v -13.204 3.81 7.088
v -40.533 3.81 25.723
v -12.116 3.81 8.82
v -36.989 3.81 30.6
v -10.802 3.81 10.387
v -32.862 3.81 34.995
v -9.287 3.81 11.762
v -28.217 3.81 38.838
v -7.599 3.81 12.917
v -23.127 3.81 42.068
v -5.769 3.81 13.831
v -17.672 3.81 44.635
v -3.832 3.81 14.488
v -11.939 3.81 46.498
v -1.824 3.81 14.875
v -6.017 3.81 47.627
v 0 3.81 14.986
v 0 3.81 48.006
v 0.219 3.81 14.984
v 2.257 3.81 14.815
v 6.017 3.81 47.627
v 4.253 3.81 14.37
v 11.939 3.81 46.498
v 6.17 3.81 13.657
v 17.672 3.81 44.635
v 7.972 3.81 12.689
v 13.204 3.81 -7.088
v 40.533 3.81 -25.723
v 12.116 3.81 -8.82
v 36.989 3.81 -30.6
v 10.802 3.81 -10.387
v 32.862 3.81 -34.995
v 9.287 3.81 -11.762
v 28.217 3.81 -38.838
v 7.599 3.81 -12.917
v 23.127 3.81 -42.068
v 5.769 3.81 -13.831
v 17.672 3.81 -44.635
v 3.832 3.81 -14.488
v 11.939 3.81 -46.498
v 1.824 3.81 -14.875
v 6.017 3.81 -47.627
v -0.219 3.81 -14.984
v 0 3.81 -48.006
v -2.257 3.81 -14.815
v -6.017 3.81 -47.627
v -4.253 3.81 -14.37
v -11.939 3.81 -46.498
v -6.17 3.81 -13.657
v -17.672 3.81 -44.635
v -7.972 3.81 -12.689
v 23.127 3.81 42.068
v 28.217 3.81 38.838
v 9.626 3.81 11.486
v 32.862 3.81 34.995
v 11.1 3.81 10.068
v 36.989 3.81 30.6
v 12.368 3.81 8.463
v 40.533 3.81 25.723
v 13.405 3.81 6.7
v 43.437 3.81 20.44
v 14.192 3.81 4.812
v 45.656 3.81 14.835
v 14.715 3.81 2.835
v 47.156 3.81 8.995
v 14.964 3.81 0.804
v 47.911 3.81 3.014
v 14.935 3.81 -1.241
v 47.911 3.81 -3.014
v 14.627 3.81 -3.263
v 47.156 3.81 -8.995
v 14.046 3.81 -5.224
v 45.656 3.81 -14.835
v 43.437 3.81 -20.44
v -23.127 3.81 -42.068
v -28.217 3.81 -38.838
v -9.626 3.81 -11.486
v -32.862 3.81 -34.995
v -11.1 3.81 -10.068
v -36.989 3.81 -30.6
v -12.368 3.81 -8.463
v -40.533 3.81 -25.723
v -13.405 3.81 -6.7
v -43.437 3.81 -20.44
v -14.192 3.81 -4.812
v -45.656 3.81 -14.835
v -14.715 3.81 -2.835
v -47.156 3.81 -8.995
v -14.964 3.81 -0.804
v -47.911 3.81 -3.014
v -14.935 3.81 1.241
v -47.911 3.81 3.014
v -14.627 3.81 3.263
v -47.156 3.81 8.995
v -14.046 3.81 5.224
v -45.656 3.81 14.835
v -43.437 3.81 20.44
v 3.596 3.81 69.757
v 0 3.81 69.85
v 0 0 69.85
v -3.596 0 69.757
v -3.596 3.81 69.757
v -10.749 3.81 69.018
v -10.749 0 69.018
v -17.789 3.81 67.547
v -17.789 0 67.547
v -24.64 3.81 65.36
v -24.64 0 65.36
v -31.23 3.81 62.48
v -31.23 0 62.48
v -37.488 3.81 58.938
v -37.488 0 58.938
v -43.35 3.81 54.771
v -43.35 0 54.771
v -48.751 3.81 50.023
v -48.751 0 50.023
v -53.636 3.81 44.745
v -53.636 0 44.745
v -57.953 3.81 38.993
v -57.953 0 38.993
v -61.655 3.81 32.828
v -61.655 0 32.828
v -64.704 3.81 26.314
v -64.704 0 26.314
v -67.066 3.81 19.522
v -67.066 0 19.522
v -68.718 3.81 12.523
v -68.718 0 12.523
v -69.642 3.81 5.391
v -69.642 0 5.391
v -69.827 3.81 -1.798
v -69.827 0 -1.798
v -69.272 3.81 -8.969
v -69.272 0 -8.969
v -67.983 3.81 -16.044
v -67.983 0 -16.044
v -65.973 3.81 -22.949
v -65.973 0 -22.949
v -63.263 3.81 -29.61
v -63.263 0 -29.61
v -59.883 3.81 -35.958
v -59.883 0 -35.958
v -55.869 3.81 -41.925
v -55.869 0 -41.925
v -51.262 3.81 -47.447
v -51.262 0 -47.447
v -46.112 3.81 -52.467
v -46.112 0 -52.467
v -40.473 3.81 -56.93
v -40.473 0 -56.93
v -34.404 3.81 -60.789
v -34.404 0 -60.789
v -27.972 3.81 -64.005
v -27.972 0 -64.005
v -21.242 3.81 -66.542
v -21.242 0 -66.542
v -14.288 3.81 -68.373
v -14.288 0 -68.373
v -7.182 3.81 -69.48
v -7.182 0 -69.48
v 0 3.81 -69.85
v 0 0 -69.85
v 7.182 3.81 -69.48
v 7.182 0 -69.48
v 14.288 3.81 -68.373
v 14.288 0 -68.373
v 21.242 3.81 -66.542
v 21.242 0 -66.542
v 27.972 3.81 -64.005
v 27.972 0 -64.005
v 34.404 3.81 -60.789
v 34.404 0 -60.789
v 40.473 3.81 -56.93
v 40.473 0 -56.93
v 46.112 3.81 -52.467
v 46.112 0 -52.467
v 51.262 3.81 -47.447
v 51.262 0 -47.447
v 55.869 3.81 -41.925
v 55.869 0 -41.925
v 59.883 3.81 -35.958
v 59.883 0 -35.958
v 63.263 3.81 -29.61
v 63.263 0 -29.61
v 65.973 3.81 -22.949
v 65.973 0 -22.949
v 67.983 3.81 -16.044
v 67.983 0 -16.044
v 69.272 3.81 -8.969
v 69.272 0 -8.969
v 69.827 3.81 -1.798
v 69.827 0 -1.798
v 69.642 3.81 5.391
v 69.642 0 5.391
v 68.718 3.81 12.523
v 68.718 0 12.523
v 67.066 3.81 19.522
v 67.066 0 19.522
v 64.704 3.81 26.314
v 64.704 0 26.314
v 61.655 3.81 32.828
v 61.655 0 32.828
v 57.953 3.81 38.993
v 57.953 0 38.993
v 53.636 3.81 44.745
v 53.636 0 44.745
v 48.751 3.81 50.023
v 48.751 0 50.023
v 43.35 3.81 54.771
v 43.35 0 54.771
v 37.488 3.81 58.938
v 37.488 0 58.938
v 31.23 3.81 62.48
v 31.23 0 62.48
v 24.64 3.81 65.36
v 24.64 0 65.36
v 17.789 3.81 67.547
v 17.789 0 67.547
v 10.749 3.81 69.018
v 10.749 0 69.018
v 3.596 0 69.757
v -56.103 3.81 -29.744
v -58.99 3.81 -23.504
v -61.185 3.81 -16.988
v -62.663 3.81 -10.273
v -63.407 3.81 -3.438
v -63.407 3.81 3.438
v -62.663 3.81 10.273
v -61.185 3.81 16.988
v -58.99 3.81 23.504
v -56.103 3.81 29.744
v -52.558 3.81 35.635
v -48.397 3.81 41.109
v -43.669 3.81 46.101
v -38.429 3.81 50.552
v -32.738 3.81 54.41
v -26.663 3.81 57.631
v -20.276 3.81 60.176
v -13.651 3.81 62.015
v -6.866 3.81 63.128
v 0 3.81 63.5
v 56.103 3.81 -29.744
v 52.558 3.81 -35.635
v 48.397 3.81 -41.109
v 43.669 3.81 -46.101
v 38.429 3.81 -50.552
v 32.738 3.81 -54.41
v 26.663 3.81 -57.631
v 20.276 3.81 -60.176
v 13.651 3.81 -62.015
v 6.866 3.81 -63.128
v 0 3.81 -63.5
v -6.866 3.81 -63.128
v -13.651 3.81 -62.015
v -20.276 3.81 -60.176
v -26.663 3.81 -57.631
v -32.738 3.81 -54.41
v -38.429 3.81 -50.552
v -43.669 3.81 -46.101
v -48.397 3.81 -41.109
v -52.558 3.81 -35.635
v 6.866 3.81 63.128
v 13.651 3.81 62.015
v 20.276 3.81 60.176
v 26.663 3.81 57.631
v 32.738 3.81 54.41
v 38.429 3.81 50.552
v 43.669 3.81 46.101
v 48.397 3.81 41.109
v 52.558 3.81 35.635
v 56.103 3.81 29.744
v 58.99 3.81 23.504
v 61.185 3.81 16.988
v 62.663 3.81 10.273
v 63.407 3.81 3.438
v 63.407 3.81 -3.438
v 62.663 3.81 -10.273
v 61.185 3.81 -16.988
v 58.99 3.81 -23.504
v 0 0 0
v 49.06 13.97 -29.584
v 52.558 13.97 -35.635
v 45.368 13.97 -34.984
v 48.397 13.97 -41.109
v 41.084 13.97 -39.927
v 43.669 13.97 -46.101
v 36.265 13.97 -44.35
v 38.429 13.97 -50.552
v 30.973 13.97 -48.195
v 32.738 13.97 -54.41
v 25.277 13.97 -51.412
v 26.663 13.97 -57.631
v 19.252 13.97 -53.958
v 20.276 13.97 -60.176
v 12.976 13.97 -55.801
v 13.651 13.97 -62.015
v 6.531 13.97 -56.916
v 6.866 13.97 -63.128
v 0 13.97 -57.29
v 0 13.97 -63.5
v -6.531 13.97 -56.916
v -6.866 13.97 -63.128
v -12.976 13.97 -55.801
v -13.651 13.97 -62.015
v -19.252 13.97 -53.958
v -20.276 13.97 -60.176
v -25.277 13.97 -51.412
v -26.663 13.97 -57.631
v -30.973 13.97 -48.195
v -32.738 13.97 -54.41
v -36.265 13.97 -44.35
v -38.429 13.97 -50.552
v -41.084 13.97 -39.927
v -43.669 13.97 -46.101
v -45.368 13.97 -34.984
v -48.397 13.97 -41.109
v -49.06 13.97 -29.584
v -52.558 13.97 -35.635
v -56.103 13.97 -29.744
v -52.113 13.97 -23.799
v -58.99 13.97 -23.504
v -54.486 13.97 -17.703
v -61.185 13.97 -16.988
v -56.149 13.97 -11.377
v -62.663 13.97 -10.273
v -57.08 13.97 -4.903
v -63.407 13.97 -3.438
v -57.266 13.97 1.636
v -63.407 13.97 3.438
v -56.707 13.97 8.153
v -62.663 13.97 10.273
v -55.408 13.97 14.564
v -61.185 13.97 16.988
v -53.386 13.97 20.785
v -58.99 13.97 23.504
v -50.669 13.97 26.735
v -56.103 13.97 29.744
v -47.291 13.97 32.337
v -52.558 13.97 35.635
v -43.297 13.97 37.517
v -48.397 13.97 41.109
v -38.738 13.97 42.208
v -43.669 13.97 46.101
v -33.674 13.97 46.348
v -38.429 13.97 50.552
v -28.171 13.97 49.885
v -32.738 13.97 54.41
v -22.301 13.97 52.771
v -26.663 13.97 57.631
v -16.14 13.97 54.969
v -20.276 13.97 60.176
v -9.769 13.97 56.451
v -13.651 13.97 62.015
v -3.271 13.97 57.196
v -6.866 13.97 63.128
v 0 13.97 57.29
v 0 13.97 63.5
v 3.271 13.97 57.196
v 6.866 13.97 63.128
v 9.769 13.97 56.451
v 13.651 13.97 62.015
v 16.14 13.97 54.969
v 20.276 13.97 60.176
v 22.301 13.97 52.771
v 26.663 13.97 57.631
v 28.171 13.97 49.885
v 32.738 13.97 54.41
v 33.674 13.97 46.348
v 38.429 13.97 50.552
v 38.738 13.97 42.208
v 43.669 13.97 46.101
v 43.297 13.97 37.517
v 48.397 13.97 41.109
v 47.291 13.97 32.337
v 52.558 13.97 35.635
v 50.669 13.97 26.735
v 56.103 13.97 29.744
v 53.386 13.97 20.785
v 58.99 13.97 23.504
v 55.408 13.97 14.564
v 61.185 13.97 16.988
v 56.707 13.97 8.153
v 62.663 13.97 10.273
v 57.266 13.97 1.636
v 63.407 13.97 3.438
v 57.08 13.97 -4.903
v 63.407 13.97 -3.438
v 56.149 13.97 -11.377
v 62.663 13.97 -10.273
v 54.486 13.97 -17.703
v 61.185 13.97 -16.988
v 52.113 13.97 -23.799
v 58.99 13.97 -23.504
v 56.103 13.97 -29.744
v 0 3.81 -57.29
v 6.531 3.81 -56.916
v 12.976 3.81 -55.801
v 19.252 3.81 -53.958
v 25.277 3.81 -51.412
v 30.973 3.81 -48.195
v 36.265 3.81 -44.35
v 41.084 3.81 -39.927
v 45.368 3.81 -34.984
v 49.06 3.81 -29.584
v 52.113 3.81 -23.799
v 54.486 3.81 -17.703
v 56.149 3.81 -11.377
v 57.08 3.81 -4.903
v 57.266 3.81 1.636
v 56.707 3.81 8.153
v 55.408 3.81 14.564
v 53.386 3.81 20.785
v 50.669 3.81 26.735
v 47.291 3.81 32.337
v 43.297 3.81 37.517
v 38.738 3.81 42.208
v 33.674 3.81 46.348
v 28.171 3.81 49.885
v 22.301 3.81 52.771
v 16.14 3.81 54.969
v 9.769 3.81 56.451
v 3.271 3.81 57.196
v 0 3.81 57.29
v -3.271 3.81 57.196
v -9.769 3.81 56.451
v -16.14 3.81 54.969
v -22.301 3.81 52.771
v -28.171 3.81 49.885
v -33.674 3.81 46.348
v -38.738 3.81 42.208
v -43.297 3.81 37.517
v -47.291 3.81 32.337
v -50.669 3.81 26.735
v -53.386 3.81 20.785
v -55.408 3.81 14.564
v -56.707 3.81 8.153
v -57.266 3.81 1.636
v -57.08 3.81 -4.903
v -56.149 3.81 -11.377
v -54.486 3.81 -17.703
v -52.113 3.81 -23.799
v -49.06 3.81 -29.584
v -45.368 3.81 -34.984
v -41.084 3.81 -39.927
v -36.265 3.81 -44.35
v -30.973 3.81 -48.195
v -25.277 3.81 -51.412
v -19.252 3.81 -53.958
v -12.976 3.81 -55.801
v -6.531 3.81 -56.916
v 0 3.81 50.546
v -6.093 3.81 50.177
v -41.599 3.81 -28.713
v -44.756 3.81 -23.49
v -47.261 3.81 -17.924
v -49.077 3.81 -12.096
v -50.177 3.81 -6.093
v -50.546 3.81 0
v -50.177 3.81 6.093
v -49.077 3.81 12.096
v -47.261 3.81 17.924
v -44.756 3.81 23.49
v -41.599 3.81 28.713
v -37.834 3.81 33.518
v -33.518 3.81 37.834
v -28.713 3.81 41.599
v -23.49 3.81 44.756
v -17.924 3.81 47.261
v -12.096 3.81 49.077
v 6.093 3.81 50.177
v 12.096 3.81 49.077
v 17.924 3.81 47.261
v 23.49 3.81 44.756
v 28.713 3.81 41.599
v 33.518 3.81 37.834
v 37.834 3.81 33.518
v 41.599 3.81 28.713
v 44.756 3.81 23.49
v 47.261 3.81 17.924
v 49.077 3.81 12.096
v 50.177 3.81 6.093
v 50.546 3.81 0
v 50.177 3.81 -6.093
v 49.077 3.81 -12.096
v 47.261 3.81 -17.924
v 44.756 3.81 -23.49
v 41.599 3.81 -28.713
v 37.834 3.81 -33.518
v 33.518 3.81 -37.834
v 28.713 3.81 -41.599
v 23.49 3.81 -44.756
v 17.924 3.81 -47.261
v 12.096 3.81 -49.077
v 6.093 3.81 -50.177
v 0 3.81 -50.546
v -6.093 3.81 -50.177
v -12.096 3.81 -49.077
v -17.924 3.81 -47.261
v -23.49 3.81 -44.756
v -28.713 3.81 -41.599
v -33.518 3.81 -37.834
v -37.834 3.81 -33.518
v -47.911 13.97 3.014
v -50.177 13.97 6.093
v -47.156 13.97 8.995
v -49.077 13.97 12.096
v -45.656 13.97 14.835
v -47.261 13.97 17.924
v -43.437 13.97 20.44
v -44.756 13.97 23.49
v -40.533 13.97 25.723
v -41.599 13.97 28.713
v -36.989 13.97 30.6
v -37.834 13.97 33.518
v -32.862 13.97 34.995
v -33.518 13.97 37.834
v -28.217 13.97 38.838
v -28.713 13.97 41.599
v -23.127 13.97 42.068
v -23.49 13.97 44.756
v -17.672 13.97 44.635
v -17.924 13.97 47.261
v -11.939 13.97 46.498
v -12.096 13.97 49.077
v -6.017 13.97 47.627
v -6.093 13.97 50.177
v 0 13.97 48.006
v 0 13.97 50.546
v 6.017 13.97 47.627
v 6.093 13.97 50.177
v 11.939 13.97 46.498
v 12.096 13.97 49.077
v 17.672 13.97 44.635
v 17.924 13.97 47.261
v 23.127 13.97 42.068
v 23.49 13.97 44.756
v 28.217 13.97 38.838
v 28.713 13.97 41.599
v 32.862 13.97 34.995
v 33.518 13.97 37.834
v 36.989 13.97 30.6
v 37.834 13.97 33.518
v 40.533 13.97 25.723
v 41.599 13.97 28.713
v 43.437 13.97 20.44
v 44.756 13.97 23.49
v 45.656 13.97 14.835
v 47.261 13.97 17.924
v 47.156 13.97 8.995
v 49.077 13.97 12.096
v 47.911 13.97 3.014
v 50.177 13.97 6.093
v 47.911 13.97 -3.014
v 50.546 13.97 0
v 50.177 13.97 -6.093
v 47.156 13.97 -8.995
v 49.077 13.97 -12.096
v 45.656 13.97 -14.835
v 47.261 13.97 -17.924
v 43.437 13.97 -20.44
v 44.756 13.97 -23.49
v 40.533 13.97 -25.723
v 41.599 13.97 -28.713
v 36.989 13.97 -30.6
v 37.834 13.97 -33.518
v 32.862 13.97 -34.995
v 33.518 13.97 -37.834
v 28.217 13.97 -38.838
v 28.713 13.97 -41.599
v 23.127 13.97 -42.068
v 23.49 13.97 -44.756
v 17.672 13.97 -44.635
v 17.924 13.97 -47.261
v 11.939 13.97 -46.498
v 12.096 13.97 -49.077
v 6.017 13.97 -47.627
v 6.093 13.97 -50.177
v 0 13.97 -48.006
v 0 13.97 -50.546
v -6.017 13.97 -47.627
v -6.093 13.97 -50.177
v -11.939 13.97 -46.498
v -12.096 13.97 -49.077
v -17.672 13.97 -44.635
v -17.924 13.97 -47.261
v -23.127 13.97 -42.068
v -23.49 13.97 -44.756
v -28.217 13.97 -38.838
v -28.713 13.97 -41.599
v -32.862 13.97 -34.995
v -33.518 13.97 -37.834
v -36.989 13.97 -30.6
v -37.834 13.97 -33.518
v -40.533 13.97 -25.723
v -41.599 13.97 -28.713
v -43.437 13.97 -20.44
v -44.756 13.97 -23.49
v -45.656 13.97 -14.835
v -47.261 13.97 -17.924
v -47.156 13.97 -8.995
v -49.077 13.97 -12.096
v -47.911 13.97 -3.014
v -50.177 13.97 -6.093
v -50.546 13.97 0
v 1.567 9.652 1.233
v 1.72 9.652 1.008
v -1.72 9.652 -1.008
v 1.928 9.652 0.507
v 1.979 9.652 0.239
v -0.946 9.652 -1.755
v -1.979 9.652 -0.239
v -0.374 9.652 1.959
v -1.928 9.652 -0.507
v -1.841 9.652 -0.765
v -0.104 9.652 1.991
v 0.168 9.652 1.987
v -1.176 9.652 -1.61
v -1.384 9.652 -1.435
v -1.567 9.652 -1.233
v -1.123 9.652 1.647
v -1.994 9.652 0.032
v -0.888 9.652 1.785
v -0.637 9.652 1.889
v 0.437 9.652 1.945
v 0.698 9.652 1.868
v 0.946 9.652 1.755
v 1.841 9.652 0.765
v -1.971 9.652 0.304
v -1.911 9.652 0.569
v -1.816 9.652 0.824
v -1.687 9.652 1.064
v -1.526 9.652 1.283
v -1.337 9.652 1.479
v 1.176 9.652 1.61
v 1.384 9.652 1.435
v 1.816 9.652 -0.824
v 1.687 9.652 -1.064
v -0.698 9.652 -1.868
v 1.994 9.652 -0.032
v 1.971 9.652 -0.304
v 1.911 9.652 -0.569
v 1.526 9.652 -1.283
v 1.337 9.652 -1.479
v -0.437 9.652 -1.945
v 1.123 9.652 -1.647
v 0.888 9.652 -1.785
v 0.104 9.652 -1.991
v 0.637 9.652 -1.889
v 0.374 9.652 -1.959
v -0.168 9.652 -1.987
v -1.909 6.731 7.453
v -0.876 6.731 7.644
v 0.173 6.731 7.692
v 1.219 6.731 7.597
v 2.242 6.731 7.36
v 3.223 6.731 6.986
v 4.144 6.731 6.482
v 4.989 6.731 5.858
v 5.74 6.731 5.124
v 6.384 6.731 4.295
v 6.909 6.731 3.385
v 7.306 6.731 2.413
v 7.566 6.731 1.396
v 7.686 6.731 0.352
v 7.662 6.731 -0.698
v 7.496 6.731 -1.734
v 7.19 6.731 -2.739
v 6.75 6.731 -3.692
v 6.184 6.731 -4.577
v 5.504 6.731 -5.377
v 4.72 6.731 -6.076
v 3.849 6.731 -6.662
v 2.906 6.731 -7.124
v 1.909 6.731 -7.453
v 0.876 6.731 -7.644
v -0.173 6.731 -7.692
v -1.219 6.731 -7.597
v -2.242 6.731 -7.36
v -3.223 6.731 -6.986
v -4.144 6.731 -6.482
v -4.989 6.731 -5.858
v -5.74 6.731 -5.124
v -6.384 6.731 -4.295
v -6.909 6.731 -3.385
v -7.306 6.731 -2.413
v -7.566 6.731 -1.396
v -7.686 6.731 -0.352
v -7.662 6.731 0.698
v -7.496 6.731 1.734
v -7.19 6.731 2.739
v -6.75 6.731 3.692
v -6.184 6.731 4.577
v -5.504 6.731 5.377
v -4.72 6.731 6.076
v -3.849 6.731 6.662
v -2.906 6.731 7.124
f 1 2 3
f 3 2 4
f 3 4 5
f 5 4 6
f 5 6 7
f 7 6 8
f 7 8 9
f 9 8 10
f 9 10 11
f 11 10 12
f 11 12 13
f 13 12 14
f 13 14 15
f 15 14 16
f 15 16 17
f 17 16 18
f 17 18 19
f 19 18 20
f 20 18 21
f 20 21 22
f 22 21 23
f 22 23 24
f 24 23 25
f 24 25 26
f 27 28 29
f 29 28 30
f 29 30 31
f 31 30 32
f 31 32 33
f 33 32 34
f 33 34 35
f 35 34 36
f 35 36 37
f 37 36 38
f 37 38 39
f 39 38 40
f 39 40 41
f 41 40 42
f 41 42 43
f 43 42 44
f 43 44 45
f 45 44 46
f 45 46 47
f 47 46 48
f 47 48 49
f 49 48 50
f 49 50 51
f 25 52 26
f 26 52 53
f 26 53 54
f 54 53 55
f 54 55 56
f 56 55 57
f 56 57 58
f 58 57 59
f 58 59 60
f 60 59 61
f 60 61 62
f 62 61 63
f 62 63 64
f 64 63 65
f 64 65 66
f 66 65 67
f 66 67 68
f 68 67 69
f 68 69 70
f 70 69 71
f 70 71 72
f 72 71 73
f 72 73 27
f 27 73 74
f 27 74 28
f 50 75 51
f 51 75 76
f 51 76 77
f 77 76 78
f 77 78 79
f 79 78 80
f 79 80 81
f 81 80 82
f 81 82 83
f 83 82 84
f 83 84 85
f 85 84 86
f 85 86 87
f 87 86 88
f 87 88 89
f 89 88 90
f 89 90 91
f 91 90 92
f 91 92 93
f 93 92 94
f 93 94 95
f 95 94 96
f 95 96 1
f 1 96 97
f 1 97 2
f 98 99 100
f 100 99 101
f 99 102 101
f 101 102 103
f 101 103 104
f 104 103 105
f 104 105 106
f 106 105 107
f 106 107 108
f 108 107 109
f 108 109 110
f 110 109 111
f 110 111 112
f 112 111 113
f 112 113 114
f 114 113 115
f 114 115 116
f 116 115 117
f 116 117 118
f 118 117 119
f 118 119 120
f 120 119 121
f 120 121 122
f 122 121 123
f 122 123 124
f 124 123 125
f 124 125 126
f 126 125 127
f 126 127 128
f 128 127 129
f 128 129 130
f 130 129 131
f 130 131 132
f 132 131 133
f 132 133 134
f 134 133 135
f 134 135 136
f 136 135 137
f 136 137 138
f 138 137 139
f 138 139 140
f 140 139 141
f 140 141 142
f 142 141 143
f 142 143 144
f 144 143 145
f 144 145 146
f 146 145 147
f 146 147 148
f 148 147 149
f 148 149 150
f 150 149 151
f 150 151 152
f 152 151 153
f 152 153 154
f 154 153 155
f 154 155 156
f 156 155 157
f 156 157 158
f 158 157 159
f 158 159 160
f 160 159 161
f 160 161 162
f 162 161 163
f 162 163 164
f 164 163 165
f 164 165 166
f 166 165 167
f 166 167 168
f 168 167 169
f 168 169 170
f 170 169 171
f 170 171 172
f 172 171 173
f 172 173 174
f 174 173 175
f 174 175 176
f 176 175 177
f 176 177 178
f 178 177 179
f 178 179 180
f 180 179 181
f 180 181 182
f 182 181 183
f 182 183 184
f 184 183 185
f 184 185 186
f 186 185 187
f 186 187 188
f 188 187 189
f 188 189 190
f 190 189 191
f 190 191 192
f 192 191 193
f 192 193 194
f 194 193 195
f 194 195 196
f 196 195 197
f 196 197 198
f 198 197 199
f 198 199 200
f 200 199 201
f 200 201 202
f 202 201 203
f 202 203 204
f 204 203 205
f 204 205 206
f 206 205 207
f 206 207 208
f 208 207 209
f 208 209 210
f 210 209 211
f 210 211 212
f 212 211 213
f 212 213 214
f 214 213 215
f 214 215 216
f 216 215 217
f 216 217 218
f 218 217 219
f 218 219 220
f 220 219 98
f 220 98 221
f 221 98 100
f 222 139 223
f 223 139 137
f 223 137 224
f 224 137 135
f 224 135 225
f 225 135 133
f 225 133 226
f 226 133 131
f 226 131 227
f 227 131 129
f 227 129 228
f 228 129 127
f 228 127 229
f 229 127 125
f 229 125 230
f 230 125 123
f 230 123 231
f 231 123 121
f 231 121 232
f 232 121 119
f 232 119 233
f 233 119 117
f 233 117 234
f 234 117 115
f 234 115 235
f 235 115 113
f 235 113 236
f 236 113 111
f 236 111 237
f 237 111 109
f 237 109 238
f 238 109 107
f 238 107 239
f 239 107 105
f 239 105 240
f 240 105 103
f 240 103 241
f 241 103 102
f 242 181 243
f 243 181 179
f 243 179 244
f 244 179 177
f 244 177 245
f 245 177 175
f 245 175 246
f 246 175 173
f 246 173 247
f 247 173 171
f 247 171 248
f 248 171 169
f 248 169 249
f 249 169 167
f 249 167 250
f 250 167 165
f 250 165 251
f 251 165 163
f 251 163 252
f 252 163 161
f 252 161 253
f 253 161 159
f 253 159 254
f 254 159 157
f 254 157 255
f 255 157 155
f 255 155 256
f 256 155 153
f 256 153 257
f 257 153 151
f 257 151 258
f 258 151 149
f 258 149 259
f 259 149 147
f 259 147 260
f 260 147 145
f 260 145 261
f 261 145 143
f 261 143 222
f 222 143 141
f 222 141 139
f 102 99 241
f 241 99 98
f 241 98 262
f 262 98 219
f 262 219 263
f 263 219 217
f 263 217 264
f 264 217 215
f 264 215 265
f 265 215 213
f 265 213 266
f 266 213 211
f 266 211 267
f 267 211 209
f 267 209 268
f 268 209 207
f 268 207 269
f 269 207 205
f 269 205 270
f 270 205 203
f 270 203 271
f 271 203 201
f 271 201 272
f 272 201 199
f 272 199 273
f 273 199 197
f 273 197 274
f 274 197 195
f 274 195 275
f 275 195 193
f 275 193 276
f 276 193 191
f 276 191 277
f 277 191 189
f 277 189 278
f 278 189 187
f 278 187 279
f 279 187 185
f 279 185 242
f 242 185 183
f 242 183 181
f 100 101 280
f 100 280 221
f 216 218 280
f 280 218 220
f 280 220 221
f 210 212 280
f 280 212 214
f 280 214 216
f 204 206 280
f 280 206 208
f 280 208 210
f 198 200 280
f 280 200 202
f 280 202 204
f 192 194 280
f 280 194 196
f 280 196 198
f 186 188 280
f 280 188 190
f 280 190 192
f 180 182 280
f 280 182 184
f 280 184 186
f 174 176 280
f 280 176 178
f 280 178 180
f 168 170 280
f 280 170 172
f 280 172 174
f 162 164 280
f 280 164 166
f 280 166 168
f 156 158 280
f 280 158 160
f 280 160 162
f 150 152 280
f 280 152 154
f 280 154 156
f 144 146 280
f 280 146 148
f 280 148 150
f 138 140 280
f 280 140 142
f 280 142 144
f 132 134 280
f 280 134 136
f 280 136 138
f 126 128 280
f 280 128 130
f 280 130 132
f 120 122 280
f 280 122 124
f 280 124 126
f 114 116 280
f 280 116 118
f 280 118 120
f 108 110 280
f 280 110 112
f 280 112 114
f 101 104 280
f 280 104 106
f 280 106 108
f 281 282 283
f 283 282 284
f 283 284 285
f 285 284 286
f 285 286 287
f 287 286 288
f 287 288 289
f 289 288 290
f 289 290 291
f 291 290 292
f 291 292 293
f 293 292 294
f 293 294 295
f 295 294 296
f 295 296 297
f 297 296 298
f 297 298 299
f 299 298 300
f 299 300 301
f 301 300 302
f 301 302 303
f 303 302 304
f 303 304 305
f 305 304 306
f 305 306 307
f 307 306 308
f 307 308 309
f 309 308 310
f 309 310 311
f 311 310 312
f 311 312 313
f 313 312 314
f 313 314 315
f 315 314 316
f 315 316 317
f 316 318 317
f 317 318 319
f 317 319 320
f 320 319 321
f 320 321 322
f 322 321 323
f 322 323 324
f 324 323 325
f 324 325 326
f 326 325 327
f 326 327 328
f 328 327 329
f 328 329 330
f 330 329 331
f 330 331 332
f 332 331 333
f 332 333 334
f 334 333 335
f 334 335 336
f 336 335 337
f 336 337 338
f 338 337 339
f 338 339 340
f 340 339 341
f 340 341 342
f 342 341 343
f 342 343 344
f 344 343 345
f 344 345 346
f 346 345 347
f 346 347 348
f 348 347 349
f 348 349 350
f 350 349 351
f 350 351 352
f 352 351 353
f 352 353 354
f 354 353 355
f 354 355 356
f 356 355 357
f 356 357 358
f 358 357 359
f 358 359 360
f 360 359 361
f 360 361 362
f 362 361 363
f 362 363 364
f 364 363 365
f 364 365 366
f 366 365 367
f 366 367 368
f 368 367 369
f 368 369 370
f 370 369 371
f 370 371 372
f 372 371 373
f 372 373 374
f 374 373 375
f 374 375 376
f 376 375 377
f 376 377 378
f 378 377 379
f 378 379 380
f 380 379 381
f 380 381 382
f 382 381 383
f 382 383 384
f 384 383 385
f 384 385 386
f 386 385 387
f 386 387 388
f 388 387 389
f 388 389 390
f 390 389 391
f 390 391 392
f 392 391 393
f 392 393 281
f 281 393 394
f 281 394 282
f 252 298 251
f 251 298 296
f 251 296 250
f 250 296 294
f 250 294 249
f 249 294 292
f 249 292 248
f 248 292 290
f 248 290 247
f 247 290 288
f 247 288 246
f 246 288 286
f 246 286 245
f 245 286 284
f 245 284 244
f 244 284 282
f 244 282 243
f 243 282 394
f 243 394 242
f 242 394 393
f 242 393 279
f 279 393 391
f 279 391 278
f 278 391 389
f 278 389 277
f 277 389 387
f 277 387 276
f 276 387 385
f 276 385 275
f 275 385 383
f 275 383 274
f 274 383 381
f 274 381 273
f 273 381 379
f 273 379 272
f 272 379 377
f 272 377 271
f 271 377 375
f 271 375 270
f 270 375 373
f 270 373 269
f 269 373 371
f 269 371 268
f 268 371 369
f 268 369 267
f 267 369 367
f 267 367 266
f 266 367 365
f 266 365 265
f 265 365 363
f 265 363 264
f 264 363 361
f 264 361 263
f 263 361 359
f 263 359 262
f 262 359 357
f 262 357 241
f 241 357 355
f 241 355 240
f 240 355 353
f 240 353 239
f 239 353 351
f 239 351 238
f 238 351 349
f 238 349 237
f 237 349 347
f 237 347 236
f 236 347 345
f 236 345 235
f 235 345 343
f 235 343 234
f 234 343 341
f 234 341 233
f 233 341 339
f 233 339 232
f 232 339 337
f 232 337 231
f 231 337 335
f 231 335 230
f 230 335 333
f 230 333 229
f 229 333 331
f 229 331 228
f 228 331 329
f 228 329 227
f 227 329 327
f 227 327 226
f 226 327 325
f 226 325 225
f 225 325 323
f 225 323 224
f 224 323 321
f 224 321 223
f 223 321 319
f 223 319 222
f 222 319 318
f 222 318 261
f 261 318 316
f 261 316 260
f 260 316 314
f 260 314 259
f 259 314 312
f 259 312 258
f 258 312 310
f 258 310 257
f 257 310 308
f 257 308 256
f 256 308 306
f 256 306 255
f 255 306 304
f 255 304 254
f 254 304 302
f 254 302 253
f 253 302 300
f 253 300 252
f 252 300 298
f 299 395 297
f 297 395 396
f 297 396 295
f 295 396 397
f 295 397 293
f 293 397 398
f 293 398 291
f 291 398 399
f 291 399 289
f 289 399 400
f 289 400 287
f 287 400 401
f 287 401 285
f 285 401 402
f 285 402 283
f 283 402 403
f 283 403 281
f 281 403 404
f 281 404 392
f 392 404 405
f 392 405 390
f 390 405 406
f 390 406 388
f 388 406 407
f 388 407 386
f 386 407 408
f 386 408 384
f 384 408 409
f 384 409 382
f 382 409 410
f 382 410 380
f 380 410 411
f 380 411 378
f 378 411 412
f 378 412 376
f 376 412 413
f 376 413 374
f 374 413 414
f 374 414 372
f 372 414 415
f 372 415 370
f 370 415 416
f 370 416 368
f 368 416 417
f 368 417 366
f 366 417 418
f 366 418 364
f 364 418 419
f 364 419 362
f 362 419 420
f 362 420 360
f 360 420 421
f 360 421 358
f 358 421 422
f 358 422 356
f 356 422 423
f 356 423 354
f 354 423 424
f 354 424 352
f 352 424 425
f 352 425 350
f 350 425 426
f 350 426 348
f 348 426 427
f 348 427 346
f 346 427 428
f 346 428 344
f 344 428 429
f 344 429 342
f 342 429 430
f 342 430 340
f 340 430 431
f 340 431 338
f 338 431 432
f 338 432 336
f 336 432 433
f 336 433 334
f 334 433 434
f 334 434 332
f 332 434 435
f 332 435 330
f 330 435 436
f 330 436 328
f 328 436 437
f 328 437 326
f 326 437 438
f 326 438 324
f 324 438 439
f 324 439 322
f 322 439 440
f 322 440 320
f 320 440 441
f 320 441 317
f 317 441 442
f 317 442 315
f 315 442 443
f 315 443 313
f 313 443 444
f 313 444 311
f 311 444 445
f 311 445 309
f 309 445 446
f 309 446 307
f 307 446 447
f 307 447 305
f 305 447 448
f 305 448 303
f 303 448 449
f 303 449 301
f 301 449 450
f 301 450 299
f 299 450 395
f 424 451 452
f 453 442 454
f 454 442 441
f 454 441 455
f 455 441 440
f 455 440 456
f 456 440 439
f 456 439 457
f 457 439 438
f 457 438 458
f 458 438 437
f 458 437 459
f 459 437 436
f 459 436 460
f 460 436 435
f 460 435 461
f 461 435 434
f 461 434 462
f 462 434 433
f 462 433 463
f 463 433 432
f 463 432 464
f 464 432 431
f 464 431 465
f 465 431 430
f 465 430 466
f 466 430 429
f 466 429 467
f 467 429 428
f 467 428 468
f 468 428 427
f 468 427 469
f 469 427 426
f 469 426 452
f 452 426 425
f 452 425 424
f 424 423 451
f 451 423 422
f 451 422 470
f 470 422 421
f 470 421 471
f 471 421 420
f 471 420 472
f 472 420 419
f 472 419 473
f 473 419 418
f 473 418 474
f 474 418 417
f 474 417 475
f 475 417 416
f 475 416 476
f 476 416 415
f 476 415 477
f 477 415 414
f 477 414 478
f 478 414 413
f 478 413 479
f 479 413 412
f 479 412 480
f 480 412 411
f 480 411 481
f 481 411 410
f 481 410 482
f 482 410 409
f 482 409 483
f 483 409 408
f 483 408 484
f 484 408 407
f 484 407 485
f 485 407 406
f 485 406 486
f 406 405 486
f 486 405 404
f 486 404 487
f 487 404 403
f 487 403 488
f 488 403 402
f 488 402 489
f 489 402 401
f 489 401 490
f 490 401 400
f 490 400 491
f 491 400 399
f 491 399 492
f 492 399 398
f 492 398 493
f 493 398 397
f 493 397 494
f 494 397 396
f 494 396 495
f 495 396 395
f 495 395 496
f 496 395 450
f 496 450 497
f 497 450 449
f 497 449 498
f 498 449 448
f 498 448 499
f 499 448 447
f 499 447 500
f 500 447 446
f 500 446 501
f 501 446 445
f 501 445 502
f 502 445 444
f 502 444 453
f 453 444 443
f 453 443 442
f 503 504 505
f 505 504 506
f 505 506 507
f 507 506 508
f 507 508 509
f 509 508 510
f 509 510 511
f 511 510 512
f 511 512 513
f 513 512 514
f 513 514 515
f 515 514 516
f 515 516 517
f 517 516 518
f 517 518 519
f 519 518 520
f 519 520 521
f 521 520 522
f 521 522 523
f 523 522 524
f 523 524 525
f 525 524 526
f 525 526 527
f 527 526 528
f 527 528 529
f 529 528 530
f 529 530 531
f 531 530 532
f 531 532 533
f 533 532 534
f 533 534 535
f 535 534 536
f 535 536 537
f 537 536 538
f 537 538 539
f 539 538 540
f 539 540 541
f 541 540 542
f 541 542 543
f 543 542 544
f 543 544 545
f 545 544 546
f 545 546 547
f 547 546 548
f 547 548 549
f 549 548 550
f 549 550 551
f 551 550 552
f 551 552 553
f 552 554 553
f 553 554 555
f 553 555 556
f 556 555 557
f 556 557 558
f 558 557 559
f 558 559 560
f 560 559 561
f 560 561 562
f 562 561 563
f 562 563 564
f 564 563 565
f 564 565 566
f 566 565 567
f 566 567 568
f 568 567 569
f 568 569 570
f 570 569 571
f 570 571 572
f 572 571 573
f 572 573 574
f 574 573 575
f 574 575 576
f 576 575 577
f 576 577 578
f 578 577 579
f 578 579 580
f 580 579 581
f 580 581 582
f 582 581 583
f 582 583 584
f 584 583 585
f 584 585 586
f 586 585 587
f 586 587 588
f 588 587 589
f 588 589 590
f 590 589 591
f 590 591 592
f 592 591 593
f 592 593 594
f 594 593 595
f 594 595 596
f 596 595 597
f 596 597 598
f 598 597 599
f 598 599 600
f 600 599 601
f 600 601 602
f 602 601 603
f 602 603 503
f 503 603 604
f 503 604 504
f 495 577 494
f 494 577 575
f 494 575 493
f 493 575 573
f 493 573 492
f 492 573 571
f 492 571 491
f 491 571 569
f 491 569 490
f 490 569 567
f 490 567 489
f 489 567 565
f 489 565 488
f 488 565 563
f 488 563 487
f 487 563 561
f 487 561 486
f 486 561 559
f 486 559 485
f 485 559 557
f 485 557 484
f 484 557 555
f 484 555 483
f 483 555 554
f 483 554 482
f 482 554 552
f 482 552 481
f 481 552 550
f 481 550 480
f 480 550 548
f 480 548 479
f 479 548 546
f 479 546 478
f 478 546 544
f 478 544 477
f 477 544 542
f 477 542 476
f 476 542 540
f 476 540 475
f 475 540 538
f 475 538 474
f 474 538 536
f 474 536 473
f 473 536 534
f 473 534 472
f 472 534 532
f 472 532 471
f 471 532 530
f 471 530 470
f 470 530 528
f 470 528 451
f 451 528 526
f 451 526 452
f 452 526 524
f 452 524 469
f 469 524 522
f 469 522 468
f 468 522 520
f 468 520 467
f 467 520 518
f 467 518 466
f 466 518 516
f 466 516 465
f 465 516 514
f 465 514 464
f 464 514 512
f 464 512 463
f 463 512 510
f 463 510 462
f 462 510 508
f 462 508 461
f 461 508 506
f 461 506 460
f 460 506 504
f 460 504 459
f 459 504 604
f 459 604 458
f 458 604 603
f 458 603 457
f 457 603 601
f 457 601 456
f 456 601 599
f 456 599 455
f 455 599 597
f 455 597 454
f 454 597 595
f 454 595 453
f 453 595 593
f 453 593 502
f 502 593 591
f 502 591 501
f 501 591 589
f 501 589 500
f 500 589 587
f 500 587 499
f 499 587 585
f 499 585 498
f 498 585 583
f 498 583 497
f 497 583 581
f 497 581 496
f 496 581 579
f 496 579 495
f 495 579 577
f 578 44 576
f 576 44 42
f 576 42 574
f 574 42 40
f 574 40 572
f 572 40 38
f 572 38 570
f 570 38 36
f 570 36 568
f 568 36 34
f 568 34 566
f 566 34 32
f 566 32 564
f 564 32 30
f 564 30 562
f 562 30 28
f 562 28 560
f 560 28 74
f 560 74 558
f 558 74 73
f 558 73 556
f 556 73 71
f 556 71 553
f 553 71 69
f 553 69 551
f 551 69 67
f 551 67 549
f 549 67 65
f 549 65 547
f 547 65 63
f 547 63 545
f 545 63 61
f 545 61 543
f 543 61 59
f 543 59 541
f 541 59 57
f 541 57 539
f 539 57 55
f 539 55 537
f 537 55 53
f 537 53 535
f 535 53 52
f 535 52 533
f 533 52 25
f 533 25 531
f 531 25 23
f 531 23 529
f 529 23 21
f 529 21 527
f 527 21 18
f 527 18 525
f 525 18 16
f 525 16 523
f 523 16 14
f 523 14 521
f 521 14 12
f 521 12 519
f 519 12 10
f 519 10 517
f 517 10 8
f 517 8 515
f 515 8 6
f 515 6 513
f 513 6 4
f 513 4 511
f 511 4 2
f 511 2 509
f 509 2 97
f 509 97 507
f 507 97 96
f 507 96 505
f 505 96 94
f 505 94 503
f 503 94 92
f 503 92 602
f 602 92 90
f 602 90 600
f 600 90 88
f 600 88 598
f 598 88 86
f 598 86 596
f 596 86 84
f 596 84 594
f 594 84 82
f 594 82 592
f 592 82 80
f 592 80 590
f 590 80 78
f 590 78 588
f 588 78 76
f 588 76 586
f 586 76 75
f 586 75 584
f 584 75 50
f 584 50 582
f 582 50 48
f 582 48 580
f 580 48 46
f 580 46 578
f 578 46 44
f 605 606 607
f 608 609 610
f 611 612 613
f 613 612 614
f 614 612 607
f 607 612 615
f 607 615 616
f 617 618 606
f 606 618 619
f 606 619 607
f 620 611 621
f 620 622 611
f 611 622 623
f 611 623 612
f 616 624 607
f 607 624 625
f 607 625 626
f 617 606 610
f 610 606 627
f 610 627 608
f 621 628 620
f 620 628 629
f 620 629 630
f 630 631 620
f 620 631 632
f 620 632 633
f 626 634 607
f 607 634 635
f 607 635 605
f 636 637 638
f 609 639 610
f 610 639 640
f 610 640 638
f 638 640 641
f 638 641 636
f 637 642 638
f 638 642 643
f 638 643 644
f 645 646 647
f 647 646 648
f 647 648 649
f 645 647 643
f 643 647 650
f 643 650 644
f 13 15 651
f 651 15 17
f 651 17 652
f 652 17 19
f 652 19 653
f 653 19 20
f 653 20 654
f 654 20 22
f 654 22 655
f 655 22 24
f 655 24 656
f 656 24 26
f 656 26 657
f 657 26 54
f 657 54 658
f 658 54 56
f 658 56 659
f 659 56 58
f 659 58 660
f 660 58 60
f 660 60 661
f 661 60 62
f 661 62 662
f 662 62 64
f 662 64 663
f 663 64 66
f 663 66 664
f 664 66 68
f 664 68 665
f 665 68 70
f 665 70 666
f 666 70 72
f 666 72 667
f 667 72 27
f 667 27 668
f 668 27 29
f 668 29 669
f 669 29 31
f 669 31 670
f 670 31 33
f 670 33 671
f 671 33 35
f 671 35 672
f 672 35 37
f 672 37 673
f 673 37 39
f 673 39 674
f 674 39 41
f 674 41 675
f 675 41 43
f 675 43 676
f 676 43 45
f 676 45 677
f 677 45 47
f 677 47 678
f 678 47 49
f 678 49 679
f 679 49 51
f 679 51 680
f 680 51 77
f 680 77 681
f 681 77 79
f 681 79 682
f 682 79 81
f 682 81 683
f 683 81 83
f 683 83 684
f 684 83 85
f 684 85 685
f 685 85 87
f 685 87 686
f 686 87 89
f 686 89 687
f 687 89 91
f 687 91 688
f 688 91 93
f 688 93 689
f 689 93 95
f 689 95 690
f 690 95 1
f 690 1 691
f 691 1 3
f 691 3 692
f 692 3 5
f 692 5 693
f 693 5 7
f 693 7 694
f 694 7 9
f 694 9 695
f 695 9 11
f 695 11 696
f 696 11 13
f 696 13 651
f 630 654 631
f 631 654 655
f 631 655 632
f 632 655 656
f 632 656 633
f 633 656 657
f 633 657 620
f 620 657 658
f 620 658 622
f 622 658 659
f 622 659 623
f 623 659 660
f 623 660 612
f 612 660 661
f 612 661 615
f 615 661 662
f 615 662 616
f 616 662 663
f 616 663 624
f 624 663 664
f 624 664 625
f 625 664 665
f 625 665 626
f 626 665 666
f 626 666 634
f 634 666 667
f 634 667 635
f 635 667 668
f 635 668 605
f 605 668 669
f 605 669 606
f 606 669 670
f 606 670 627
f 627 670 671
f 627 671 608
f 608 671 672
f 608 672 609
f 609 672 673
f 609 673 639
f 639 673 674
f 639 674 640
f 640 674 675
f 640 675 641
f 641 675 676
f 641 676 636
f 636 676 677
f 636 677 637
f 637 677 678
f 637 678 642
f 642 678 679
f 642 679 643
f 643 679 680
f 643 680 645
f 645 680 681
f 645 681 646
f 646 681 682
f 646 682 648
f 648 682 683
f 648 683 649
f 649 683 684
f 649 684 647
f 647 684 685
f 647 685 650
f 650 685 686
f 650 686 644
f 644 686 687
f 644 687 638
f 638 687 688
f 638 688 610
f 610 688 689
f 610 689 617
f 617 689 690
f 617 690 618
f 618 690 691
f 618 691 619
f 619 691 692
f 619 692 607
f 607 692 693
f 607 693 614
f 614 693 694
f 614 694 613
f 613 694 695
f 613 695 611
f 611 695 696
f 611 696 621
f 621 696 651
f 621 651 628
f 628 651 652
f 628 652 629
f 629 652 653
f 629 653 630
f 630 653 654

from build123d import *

# Parameters (mm, degrees)
SKETCH1_R           = 69.85
BOSS_EXTRUDE1_DEPTH = 3.81
SKETCH2_R           = 63.5
SKETCH2_R_2         = 57.2897
BOSS_EXTRUDE2_DEPTH = 10.16
SKETCH3_R           = 50.546
SKETCH3_R_2         = 48.006
BOSS_EXTRUDE3_DEPTH = 10.16


with BuildPart() as part:
    # Sketch1 → Boss-Extrude1 (new body)
    with BuildSketch(Plane(origin=(0, 0, 0), x_dir=(1, 0, 0), z_dir=(0, 1, 0))):
        with Locations(Location((0, 0, 0), (0, 0, 90))):
            Circle(SKETCH1_R)
    extrude(amount=BOSS_EXTRUDE1_DEPTH)

    # Sketch2 → Boss-Extrude2 (add)
    with BuildSketch(Plane(origin=(0, 3.81, 0), x_dir=(1, 0, 0), z_dir=(0, 1, 0))):
        with Locations(Location((0, 0, 0), (0, 0, 270))):
            Circle(SKETCH2_R)
        with Locations(Location((0, 0, 0), (0, 0, 270))):
            Circle(SKETCH2_R_2, mode=Mode.SUBTRACT)
    extrude(amount=BOSS_EXTRUDE2_DEPTH)

    # Sketch3 → Boss-Extrude3 (add)
    with BuildSketch(Plane(origin=(0, 3.81, 0), x_dir=(1, 0, 0), z_dir=(0, 1, 0))):
        with Locations(Location((0, 0, 0), (0, 0, 270))):
            Circle(SKETCH3_R)
        with Locations(Location((0, 0, 0), (0, 0, 270))):
            Circle(SKETCH3_R_2, mode=Mode.SUBTRACT)
    extrude(amount=BOSS_EXTRUDE3_DEPTH)

    # Loft1: read off the stored shape, not the designer's step
    # Loft1: loft between two sections, ruled curve by curve
    loft1_from = [
        Edge.make_bspline([(-1.815697125, 9.652, 0.82394245), (-3.463582025, 9.652, -2.8074518), (0.167812225, 9.652, -4.4553367), (1.815697125, 9.652, -0.82394245), (3.463582025, 9.652, 2.8074518), (-0.167812225, 9.652, 4.4553367), (-1.815697125, 9.652, 0.82394245)], [0, 0, 0, 0, 0.5, 0.5, 0.5, 1, 1, 1, 1], 3, [1, 0.333333333, 0.333333333, 1, 0.333333333, 0.333333333, 1]),
    ]
    loft1_to = [
        Edge.make_bspline([(4.253244453, 3.81, 14.369763659), (-24.486282866, 3.81, 22.876252565), (-32.992771771, 3.81, -5.863274754), (-4.253244453, 3.81, -14.369763659), (24.486282866, 3.81, -22.876252565), (32.992771771, 3.81, 5.863274754), (4.253244453, 3.81, 14.369763659)], [0, 0, 0, 0, 0.5, 0.5, 0.5, 1, 1, 1, 1], 3, [1, 0.333333333, 0.333333333, 1, 0.333333333, 0.333333333, 1]),
    ]
    loft1 = Solid(Shell([*[Face.make_surface_from_curves(loft1_from[k], loft1_to[k]) for k in range(1)], Face(Wire(loft1_from)), Face(Wire(loft1_to))]))
    add(loft1)


solid = part.part
